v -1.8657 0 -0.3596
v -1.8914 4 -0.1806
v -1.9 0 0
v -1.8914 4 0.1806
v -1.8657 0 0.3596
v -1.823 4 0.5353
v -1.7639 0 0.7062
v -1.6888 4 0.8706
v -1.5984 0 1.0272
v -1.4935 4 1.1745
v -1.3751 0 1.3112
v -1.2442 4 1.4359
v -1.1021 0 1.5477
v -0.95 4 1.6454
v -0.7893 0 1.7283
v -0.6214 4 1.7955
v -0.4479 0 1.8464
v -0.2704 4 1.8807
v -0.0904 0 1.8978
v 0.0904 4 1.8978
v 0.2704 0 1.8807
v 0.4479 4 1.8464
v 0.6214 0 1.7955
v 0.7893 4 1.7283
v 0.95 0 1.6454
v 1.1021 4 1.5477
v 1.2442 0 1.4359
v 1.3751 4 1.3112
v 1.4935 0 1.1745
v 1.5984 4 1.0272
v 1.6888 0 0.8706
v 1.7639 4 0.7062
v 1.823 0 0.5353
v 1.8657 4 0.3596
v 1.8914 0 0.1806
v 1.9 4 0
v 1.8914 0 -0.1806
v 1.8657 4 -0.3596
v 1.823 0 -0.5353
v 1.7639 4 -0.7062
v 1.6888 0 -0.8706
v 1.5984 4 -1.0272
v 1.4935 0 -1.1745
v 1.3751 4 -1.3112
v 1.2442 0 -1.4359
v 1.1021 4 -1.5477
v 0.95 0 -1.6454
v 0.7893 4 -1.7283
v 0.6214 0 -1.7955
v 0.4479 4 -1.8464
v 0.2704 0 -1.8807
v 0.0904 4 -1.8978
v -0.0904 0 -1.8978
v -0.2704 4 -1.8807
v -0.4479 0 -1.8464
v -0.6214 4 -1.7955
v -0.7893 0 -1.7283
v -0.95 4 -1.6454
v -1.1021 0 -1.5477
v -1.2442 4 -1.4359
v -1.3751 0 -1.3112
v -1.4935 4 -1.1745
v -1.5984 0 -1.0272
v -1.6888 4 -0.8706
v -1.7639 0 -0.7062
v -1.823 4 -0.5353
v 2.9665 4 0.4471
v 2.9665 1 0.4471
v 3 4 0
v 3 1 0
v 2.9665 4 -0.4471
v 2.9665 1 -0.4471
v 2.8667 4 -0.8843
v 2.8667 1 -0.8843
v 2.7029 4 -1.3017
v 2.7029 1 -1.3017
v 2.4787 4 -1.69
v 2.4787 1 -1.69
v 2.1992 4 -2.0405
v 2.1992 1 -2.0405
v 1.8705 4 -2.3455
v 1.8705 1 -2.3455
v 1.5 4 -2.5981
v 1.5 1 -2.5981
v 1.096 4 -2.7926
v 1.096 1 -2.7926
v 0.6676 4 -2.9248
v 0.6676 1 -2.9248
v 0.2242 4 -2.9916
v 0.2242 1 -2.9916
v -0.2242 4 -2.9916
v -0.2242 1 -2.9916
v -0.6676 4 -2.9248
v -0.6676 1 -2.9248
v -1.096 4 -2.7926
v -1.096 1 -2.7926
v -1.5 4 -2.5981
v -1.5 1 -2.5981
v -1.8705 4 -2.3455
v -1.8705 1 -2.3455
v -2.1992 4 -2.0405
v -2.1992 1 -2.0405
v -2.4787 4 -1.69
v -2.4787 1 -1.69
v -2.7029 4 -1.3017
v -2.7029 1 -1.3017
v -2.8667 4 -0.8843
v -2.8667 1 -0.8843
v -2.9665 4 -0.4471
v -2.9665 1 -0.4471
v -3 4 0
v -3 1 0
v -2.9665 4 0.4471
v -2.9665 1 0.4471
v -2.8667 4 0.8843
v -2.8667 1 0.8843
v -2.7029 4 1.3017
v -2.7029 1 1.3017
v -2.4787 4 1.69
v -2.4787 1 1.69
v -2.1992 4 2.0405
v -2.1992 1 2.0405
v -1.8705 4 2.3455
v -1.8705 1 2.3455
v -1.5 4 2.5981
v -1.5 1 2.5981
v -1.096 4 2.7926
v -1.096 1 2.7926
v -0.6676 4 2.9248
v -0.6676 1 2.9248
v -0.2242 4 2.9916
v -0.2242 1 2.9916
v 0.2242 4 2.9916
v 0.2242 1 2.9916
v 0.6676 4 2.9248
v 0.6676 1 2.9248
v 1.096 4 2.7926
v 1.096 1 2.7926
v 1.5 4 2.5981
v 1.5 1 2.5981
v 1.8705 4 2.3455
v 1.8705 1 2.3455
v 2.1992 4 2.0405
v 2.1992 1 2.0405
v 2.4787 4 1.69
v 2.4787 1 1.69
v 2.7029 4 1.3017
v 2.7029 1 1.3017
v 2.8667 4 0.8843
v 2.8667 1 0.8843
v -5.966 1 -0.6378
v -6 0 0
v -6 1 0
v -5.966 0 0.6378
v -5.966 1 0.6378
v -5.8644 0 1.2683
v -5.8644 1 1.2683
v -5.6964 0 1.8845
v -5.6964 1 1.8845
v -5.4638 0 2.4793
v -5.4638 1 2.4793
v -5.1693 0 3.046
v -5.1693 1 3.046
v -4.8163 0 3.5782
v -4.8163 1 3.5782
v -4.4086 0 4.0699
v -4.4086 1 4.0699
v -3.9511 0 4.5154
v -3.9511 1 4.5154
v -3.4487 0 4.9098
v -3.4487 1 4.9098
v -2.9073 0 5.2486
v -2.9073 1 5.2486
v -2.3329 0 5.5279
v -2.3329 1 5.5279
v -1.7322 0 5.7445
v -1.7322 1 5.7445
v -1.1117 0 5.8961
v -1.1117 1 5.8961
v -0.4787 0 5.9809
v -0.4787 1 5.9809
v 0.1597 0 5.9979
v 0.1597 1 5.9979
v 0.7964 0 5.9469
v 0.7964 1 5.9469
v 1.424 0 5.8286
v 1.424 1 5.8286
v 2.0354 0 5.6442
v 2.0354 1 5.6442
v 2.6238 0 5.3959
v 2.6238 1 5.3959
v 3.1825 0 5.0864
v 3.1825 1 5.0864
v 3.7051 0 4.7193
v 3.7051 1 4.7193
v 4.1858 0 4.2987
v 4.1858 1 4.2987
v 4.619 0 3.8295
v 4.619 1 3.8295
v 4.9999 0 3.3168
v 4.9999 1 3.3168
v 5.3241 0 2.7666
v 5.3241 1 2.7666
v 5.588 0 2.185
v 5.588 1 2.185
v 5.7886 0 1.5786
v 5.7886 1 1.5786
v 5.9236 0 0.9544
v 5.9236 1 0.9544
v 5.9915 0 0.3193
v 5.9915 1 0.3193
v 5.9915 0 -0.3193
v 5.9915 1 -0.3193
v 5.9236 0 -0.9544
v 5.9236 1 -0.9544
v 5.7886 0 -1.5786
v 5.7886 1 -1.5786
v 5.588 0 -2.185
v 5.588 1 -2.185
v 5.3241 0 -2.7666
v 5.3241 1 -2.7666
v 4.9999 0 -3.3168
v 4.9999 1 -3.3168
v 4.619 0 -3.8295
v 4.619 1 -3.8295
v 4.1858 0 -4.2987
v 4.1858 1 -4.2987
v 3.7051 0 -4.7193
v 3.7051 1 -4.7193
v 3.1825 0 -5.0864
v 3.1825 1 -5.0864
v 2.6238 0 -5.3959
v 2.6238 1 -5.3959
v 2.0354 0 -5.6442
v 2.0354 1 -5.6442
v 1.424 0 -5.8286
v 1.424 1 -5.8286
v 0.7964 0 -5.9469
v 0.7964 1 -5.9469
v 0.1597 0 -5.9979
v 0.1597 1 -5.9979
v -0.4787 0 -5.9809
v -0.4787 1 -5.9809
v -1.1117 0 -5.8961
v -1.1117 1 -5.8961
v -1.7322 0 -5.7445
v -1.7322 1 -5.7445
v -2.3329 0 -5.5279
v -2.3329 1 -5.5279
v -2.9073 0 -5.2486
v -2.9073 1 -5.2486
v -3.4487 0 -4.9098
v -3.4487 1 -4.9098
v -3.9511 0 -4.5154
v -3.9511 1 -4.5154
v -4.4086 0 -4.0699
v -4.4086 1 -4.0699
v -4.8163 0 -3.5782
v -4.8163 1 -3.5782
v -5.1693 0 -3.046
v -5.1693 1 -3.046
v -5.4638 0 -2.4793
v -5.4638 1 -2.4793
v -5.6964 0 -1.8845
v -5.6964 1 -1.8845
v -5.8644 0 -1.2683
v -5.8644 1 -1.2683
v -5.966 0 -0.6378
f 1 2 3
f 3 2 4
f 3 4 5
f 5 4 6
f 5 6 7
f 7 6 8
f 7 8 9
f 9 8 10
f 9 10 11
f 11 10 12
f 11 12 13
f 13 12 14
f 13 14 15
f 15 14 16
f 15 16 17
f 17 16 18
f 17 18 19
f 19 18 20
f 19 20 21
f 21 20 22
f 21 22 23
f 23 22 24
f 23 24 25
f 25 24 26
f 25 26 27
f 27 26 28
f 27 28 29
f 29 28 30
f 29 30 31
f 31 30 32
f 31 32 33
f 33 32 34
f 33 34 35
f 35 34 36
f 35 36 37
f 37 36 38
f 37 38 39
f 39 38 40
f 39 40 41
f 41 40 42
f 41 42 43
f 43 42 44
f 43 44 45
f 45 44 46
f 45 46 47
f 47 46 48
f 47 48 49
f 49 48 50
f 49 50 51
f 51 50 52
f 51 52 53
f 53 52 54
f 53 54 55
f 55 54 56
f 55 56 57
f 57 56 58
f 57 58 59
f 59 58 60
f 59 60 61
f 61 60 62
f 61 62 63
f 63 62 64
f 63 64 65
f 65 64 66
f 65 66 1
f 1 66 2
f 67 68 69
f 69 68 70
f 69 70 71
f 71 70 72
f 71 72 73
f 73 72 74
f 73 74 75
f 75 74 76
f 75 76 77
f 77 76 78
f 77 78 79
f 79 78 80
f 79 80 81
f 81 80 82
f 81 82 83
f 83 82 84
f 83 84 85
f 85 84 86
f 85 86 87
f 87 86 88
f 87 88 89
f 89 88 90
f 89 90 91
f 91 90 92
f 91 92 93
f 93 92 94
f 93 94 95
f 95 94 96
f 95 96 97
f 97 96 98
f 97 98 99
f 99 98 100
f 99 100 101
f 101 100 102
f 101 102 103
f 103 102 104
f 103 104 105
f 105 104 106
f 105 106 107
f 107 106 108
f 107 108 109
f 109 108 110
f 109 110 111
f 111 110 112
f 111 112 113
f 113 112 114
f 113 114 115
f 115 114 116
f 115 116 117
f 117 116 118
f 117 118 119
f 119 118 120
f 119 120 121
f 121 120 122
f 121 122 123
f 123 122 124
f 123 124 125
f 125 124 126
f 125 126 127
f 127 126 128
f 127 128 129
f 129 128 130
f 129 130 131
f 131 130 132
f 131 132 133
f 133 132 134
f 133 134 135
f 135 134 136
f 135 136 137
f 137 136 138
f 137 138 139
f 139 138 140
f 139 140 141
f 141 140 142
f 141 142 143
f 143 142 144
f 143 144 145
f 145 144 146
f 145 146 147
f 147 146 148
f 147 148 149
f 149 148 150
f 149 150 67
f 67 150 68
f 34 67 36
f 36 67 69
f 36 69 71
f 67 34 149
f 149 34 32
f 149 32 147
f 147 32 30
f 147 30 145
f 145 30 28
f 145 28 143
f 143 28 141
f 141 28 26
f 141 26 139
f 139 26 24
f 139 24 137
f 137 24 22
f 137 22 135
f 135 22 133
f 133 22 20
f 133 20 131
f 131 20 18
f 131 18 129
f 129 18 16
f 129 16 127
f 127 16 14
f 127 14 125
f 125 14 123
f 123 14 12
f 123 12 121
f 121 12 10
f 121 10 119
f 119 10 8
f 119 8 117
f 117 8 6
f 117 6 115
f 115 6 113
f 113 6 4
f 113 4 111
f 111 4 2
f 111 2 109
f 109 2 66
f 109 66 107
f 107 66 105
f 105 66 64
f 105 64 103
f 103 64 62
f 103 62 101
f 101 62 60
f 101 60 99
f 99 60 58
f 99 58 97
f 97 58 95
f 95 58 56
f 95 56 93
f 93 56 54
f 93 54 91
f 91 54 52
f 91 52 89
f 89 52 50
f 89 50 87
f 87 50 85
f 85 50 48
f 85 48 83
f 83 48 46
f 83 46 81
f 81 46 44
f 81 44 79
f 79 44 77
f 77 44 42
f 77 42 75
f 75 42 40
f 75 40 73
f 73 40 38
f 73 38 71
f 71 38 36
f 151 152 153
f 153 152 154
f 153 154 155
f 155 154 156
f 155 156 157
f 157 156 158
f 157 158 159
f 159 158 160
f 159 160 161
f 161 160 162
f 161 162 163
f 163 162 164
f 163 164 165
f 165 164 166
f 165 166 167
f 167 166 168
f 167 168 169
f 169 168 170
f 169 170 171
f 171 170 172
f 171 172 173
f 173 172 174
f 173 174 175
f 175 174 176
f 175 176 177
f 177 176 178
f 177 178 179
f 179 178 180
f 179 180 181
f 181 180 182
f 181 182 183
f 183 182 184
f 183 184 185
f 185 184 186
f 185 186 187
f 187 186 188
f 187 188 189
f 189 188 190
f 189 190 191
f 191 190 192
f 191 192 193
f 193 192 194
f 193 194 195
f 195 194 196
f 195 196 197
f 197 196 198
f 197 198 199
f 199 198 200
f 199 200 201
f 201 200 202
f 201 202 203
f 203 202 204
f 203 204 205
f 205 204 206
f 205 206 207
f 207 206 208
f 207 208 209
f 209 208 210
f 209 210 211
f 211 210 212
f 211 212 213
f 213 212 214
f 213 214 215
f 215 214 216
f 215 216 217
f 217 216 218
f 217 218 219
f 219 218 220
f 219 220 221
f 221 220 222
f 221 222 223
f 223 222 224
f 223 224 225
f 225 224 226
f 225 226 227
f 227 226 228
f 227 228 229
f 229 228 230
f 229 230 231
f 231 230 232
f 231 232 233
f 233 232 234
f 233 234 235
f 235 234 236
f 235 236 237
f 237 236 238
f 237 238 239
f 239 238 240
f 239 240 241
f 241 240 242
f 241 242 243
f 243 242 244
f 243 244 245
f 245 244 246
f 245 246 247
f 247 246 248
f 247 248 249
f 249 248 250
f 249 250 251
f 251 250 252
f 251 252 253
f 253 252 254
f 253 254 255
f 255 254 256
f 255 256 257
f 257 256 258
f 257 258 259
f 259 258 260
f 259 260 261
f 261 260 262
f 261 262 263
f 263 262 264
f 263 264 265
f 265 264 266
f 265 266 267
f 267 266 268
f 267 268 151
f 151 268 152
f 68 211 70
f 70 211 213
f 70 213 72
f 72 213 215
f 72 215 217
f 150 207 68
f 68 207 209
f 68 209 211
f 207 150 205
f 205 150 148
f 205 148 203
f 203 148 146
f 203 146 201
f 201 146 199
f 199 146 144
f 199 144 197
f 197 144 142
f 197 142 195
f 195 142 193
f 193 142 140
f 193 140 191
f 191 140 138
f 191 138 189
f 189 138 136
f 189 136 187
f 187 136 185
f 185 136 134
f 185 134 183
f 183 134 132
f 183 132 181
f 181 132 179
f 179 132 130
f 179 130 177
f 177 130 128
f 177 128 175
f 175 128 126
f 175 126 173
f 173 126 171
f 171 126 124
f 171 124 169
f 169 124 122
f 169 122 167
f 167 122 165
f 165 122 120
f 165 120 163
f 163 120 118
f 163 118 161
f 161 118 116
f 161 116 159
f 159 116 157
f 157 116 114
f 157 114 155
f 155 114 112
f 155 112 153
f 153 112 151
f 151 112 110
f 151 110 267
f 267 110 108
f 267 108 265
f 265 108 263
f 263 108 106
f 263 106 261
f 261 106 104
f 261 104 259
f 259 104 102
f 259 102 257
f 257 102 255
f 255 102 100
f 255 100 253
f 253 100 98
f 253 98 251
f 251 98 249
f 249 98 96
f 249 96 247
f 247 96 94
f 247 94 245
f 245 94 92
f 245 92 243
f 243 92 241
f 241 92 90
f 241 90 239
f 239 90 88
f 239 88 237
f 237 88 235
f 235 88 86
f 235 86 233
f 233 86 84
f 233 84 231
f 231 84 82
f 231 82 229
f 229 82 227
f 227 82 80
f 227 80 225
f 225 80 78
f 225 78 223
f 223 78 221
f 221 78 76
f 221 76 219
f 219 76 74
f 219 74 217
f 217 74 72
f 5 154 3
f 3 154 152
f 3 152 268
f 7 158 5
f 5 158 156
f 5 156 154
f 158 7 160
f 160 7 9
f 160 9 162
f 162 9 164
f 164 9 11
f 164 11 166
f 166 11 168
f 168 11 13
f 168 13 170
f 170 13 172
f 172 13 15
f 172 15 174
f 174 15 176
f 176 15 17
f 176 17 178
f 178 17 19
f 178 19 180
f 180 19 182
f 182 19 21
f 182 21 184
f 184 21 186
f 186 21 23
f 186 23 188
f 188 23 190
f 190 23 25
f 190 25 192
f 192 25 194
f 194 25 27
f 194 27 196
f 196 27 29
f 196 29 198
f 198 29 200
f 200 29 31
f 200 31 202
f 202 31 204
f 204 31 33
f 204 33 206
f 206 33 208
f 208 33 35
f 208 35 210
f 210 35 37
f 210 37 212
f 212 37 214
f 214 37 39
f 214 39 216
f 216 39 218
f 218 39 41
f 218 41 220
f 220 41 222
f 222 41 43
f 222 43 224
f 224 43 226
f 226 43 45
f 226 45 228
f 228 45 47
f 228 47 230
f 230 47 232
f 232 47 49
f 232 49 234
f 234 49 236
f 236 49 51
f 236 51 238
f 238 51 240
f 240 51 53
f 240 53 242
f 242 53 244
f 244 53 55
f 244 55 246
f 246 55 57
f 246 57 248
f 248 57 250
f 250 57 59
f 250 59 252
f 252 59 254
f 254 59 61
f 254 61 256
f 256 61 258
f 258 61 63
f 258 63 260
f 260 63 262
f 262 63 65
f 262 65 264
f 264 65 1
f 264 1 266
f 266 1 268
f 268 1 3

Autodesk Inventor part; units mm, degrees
ref_plane "YZ Plane" through (0, 0, 0) normal (1, 0, 0) x (0, 1, 0)
ref_plane "XZ Plane" through (0, 0, 0) normal (0, 1, 0) x (-1, 0, 0)
ref_plane "XY Plane" through (0, 0, 0) normal (0, 0, 1) x (1, 0, 0)
sketch "スケッチ1" plane through (0, 0, 0) normal (0, 1, 0) x (-1, 0, 0)
  circle A0 centre (0, 0) radius 6
  dimension "d0" = 12
extrude "押し出し1" add sketch "スケッチ1" along normal blind 1
sketch "スケッチ2" plane through (0, 1, 0) normal (0, 1, 0) x (1, 0, 0)
  circle A0 centre (0, 0) radius 3
  dimension "d3" = 6
extrude "押し出し2" add sketch "スケッチ2" along normal blind 3
sketch "スケッチ3" plane through (0, 4, 0) normal (0, 1, 0) x (1, 0, 0)
  circle A0 centre (0, 0) radius 1.9
  dimension "d6" = 3.8
extrude "押し出し3" cut sketch "スケッチ3" against normal through all
properties part number "ベルト_bush"
